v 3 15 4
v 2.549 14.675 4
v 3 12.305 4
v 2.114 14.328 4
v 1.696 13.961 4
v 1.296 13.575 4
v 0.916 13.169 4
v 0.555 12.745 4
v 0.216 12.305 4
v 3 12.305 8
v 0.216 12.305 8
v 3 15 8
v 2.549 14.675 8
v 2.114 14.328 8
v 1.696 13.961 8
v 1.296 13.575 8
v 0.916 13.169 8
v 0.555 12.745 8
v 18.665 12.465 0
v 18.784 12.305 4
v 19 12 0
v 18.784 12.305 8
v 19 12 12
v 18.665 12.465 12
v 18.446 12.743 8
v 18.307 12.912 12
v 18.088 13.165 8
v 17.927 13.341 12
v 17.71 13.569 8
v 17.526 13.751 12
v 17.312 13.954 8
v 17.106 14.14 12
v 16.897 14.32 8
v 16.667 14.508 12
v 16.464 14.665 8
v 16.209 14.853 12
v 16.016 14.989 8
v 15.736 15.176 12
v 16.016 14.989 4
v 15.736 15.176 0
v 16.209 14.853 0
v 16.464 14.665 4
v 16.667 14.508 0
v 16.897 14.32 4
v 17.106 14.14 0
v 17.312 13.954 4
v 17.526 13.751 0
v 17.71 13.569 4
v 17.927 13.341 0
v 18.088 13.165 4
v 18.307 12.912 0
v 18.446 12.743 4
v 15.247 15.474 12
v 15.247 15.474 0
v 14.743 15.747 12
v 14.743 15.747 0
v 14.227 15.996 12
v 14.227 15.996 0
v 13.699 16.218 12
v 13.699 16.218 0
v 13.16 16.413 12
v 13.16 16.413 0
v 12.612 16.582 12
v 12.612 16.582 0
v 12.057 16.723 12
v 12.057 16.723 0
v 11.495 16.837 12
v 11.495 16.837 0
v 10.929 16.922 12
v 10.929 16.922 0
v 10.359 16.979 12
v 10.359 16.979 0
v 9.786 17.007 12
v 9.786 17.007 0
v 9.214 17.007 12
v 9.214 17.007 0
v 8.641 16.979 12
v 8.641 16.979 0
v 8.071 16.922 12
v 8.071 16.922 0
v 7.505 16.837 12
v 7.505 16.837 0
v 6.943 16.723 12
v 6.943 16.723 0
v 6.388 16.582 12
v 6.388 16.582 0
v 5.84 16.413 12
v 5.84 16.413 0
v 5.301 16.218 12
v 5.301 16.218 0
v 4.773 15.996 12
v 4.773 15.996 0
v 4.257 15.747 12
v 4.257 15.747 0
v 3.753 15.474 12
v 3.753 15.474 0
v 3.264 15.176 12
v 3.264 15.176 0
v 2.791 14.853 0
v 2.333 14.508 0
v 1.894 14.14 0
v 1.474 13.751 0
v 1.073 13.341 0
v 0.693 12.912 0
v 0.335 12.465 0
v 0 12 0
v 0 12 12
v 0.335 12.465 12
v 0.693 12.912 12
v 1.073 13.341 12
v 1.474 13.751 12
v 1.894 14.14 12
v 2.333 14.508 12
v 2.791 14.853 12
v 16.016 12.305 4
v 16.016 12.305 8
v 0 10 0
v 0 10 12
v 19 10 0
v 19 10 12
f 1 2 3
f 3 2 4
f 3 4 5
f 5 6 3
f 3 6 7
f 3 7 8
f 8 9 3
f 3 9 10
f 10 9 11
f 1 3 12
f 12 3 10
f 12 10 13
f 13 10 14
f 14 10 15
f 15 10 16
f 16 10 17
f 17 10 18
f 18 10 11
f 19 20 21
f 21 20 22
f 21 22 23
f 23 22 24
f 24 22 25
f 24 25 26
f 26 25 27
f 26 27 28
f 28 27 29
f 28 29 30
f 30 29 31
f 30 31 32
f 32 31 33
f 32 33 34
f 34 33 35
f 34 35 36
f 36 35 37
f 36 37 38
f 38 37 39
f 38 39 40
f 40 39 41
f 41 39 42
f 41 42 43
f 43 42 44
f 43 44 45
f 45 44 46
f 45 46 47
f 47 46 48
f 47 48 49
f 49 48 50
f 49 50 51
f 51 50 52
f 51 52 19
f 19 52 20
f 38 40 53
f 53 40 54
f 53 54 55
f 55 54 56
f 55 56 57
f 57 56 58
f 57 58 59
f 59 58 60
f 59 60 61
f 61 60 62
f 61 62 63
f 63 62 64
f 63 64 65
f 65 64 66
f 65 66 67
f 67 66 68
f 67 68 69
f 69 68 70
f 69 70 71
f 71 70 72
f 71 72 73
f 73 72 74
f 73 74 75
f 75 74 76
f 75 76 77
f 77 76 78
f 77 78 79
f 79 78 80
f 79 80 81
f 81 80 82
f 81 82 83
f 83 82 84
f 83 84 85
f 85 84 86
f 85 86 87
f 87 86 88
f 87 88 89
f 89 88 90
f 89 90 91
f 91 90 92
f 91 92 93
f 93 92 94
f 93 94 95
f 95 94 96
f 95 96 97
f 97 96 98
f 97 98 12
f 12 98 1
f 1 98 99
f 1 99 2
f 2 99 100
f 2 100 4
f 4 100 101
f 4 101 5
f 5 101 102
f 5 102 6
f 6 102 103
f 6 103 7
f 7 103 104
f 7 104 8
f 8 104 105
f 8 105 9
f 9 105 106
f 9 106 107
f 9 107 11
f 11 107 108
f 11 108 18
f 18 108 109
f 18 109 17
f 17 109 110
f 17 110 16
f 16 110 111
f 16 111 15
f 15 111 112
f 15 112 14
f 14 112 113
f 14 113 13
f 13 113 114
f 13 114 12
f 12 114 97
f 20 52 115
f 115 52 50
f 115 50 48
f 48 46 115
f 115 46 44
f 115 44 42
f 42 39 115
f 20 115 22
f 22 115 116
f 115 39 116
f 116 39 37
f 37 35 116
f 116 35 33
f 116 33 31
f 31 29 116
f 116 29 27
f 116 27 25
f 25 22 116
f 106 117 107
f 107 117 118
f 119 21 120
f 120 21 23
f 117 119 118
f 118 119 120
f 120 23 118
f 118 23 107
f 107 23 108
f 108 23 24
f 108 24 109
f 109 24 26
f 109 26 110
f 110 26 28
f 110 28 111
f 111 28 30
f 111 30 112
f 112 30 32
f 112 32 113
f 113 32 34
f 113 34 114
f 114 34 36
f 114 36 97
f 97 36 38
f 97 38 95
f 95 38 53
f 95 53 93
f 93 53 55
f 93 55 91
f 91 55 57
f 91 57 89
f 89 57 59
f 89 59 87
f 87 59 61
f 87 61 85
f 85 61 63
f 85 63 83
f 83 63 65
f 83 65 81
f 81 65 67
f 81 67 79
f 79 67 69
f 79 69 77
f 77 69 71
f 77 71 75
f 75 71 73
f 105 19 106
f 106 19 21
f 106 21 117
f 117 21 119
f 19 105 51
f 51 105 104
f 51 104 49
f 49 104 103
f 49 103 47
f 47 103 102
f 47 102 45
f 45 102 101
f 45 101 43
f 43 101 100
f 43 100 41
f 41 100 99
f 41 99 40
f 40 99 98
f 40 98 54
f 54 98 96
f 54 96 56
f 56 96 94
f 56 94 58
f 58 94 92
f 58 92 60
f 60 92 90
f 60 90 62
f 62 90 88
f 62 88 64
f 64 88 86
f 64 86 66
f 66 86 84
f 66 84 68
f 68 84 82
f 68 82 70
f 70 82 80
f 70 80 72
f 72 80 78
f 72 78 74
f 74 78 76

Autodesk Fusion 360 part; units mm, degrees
sketch "Sketch1" plane through (0, 0, 0) normal (0, 0, 1) x (1, 0, 0) in component "Component"
  arc A0 (19, 12) -> (0, 12) centre (9.5, 5.5) ccw
  line L0 (19, 10) -> (19, 12)
  line L1 (0, 10) -> (0, 12)
  line L2 (0, 10) -> (19, 10)
  line L3 (8, 10) -> (12, 10)
  line L4 (0.2158, 12.3047) -> (3, 12.3047)
  line L5 (3, 12.3047) -> (3, 15)
  line L6 (16.0158, 12.3047) -> (18.7842, 12.3047)
  line L7 (16.0158, 12.3047) -> (16.0158, 14.9891)
  line L8 (0, 10) -> (19, 10)
  line L9 (19, 10) -> (19, 8)
  line L10 (19, 8) -> (0, 8)
  line L11 (0, 8) -> (0, 10)
  dimension "d36" = 19
extrude "Extrude5" add sketch "Sketch1" along normal blind 12 contours A0 L0 L1 L2 L3 L4 L5 L6 L7 L8 | A0 L6 L7 | A0 L4 L5
extrude "Extrude6" cut sketch "Sketch1" along normal blind 8 contours A0 L6 L7
extrude "Extrude7" add sketch "Sketch1" along normal blind 4 contours A0 L6 L7
extrude "Extrude8" cut sketch "Sketch1" along normal blind 8 contours A0 L4 L5
extrude "Extrude9" add sketch "Sketch1" along normal blind 4 contours A0 L4 L5
extrude "Extrude3" [suppressed] in component "Component"
component "Component" placed x (1, 0, 0) y (0, 1, 0) z (0, 0, 1) at (0, 0, 0)
